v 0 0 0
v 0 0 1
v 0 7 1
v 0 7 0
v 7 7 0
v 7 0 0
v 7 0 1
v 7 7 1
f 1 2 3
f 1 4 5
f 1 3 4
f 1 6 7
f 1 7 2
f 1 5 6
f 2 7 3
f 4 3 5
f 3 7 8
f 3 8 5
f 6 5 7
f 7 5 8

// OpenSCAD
/* Warning, this is a very basic generator with a lot of approximation 
input data : [VQFN, STB, 7x7x1mm, 44, , A, C04-21419A]
generated by com.zoubworld.electronics.cad.model3d.Basic
Date : Sun Feb 15 10:50:49 CET 2026
*/

//body
color("black")
translate([0,0,0])
cube([7.0,7.0,1.0], center=false);
